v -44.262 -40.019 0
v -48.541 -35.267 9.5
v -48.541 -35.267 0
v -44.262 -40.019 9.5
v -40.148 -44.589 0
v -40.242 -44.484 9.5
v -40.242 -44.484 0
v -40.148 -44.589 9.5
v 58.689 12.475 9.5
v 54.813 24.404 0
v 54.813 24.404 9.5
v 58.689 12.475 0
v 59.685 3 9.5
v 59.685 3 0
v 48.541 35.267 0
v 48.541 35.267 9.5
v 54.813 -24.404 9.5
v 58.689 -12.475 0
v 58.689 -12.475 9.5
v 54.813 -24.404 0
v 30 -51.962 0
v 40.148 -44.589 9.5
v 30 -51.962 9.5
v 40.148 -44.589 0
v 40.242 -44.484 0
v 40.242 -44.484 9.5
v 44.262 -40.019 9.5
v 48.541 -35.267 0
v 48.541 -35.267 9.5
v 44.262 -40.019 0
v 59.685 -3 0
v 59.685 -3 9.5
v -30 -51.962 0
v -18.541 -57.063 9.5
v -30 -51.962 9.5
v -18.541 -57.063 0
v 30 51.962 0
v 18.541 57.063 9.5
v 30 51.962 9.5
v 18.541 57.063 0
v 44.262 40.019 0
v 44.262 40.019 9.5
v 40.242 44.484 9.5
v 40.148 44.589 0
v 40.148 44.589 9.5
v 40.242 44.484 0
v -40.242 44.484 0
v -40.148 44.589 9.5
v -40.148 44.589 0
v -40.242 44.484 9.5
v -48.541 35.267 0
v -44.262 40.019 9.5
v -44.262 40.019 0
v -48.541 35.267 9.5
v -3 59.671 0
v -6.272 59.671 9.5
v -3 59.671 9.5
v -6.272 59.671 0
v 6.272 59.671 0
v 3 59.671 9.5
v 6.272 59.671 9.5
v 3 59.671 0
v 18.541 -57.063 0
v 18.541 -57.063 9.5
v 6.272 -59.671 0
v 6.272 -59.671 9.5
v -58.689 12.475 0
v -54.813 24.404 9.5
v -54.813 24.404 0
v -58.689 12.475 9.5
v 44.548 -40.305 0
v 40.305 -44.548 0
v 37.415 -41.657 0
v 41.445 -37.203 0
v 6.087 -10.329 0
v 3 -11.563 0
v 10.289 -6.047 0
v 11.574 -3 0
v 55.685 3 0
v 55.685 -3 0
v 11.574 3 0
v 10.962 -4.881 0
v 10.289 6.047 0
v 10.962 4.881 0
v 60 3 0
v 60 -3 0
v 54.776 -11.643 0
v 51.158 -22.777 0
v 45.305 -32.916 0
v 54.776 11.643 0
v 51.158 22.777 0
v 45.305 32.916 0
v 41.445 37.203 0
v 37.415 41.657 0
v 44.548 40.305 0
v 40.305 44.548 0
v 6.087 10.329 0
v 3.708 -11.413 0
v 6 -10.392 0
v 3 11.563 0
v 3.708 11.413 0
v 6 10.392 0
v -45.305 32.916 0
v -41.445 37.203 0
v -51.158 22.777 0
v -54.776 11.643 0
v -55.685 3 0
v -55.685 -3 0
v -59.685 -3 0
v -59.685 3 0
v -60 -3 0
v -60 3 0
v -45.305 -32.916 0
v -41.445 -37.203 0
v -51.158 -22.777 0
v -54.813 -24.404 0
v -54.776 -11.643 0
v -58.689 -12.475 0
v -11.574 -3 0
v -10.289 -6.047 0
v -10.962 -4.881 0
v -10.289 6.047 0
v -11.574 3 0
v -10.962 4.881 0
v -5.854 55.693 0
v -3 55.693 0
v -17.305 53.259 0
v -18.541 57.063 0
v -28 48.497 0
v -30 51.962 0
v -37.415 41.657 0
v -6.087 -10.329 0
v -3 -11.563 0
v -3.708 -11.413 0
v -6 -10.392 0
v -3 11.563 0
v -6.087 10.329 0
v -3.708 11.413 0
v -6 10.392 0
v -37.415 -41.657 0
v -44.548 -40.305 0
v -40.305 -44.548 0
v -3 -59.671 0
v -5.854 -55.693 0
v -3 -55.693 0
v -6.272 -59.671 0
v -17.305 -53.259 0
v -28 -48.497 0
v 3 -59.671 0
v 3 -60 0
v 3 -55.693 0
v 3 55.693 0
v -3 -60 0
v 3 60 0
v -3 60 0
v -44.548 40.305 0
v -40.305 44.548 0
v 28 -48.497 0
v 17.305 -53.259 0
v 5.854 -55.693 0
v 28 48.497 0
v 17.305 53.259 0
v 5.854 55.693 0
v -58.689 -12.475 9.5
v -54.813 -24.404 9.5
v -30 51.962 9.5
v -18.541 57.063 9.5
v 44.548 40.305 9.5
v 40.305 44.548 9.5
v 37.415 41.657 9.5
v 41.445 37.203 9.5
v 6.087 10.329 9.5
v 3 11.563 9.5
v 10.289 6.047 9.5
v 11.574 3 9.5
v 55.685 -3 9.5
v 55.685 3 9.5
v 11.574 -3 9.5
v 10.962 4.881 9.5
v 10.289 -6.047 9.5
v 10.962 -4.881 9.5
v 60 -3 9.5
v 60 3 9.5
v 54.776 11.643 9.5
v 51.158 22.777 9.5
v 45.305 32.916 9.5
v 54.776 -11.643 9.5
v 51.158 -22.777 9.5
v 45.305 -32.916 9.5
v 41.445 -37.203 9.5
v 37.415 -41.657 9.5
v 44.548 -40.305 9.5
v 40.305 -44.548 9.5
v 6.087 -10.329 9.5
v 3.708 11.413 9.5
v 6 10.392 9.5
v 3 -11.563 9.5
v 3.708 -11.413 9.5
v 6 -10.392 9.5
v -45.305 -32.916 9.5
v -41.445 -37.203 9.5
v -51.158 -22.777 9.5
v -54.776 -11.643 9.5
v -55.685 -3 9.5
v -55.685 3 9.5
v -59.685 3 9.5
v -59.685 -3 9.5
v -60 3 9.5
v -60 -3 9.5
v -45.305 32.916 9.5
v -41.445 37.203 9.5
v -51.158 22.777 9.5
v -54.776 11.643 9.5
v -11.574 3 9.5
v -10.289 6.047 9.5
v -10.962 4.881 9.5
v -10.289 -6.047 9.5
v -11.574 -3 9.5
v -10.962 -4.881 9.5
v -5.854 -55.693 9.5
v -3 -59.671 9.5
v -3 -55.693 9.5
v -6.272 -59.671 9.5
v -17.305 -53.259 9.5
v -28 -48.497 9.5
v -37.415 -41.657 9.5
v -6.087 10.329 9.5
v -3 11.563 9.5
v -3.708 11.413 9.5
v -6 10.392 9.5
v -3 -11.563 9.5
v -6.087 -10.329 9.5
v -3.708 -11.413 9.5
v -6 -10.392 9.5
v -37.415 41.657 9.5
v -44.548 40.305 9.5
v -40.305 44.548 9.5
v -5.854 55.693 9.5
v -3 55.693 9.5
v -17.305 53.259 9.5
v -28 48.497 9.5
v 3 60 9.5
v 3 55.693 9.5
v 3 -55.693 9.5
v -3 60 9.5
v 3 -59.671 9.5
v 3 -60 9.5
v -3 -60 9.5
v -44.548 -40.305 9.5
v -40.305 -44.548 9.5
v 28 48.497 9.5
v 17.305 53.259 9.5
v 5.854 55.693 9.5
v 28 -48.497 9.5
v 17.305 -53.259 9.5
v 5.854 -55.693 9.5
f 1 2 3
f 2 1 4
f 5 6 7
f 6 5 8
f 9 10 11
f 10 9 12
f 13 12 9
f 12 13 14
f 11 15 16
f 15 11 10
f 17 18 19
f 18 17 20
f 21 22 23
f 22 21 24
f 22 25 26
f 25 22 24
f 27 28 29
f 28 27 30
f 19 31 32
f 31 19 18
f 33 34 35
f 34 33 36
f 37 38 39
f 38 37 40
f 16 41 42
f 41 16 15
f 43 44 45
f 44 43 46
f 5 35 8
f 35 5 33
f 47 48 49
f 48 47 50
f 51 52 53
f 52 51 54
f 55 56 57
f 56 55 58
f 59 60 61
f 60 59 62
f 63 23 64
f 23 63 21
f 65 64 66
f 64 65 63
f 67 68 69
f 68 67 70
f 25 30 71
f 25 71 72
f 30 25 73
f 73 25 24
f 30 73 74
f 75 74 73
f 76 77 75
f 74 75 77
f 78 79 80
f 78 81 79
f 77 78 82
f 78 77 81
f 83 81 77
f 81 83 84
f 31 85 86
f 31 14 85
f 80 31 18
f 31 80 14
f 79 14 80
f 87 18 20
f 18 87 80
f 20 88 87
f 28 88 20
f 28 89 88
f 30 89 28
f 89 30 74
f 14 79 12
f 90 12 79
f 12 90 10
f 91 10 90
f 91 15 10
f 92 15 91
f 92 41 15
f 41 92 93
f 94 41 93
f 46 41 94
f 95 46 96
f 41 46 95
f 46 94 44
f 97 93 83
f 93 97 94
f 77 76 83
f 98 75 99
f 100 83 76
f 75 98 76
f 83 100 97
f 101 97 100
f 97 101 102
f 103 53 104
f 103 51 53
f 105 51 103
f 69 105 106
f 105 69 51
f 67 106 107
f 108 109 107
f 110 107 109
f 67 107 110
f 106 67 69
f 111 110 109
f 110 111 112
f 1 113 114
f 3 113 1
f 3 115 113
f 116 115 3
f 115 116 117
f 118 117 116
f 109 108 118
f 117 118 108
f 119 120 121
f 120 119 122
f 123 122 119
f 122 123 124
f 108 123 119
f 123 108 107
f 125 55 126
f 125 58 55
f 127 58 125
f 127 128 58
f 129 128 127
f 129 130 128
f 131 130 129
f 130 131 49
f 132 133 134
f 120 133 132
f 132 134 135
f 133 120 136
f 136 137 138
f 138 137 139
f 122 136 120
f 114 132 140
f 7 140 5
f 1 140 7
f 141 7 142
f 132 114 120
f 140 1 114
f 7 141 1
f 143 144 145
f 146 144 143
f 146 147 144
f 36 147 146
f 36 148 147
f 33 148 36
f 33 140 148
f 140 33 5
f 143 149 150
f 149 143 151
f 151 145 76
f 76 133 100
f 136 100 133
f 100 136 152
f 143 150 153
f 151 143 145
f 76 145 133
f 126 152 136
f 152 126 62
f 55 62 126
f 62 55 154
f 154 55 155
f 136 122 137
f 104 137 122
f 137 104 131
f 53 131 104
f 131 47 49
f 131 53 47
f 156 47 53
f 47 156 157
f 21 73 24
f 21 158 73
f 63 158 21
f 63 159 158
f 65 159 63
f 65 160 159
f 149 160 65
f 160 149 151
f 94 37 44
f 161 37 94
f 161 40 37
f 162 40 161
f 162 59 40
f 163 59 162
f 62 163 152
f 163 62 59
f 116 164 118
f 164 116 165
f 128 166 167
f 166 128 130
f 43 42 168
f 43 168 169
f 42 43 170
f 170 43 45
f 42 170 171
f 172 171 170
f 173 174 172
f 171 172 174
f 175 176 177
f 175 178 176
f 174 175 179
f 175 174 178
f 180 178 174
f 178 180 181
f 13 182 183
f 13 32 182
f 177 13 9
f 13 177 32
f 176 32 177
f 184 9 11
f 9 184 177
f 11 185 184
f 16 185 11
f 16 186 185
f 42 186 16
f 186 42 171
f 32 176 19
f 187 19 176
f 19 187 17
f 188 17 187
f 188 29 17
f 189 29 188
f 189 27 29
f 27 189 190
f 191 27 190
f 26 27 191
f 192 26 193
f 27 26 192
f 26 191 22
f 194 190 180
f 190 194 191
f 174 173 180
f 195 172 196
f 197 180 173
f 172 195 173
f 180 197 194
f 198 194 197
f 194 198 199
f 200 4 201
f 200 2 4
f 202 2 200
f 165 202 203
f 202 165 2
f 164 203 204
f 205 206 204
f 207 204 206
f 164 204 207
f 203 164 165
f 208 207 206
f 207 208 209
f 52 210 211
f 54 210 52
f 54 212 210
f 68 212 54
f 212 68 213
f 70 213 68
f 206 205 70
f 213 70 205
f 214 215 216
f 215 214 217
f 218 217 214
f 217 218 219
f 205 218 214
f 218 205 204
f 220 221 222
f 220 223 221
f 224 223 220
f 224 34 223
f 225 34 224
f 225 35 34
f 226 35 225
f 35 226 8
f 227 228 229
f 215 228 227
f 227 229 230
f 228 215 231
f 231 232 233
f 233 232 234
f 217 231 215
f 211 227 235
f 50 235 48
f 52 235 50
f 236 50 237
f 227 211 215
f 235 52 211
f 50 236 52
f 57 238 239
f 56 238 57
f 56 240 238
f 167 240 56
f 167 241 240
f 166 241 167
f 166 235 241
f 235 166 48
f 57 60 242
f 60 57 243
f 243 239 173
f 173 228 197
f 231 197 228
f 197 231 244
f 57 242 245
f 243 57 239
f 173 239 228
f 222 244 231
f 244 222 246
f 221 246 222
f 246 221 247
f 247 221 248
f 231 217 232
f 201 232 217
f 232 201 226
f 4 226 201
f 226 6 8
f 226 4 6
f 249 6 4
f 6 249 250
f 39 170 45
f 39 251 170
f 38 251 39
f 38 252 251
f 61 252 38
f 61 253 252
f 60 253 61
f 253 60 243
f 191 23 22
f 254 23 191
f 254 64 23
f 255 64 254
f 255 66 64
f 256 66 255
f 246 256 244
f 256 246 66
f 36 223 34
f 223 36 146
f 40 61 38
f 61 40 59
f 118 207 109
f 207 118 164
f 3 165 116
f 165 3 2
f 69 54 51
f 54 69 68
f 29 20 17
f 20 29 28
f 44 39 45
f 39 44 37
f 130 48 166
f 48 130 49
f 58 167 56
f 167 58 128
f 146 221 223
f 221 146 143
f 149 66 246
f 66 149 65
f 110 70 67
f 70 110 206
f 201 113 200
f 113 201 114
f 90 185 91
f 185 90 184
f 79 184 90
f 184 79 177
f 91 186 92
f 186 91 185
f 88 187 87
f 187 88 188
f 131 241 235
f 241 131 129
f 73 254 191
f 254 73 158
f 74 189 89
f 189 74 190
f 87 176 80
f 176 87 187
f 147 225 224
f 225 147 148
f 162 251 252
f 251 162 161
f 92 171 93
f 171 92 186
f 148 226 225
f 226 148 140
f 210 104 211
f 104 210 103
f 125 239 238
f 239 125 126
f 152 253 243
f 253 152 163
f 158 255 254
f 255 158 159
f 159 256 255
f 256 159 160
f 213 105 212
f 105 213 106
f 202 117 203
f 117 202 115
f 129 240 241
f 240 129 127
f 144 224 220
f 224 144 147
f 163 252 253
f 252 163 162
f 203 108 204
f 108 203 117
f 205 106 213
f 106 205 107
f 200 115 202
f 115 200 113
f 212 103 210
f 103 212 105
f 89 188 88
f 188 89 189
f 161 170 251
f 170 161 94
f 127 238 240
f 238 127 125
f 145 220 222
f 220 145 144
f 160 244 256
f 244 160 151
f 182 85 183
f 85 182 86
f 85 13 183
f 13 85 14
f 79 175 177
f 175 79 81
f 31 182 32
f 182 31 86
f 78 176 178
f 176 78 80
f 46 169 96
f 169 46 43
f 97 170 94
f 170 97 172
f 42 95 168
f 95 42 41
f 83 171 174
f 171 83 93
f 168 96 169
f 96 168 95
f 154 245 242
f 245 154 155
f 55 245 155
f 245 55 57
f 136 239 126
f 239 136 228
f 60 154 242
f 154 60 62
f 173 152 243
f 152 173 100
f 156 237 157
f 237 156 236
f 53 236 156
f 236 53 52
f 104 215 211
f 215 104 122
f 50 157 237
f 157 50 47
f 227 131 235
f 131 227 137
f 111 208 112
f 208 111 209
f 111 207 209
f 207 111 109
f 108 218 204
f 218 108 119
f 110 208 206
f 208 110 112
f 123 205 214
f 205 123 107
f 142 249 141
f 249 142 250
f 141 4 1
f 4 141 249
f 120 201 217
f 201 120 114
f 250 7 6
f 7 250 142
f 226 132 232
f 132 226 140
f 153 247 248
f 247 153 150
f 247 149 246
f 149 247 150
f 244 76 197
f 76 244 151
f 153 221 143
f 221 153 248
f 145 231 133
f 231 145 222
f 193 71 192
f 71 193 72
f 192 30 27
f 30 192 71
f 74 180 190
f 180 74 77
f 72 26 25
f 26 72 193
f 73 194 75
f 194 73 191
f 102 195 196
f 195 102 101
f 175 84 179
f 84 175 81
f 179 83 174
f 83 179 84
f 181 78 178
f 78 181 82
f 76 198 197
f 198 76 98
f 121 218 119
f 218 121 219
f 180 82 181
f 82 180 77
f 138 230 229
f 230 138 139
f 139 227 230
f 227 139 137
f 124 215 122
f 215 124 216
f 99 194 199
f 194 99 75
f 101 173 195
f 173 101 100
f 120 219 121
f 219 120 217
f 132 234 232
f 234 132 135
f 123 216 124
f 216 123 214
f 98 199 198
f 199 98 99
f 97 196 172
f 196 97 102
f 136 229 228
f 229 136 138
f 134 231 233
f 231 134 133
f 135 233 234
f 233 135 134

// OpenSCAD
/* doodle-meta {"version":1,"parameters":{"outer_diameter":{"label":"Outer Diameter","description":"Diameter of the wheel rim","unit":"mm","feature":"rim"},"wheel_thickness":{"label":"Wheel Thickness","description":"Width of the wheel along the axle axis","unit":"mm","feature":"body"},"hub_diameter":{"label":"Hub Diameter","description":"Diameter of the central hub","unit":"mm","feature":"hub"},"spoke_count":{"label":"Spoke Count","description":"Number of radial spokes","unit":"count","feature":"spokes"},"spoke_width":{"label":"Spoke Width","description":"Width of each spoke","unit":"mm","feature":"spokes"}},"features":{"rim":{"kind":"dimension","axis":"x","label":"Outer Diameter"},"body":{"kind":"dimension","axis":"y","label":"Wheel Thickness"},"hub":{"kind":"region","label":"Hub","min":[0,0,0],"max":[{"parameter":"hub_diameter","scale":0.5},{"parameter":"wheel_thickness","scale":0.5},{"parameter":"wheel_thickness","scale":0.5}]},"spokes":{"kind":"region","label":"Spokes","min":[{"parameter":"hub_diameter","scale":0.5},{"parameter":"wheel_thickness","scale":0.5},{"parameter":"wheel_thickness","scale":0.5}],[{"parameter":"outer_diameter","scale":0.5},{"parameter":"wheel_thickness","scale":0.5},{"parameter":"wheel_thickness","scale":0.5}]}}} */

// Parameters
outer_diameter = 120.0;
wheel_thickness = 9.5;
hub_diameter = 24.0;
spoke_count = 8;
spoke_width = 6.0;

// Derived dimensions
outer_radius = outer_diameter / 2.0;
hub_radius = hub_diameter / 2.0;
rim_inner_radius = outer_radius - 4.0;
spoke_length = outer_radius; // Extend to outer radius to ensure overlap with rim

// Modules
module wheel_body() {
    // Rim: Outer cylinder minus inner cylinder
    difference() {
        cylinder(h = wheel_thickness, r = outer_radius, center = true);
        cylinder(h = wheel_thickness + 0.1, r = rim_inner_radius, center = true);
    }
    
    // Hub: Central cylinder
    cylinder(h = wheel_thickness, r = hub_radius, center = true);
    
    // Spokes: Array of rectangular bars
    for (i = [0 : spoke_count - 1]) {
        rotate([0, 0, i * (360.0 / spoke_count)]) {
            // Translate so the spoke starts at the hub center and extends to the rim
            // The cube is centered at [spoke_length/2, 0, 0] relative to the rotation
            // This ensures it spans from 0 to spoke_length (which is outer_radius)
            translate([spoke_length / 2.0, 0, 0]) {
                cube([spoke_length, spoke_width, wheel_thickness], center = true);
            }
        }
    }
}

// Main Design
// Translate up so the bottom of the wheel sits on Z=0
translate([0, 0, wheel_thickness / 2.0]) {
    wheel_body();
}
